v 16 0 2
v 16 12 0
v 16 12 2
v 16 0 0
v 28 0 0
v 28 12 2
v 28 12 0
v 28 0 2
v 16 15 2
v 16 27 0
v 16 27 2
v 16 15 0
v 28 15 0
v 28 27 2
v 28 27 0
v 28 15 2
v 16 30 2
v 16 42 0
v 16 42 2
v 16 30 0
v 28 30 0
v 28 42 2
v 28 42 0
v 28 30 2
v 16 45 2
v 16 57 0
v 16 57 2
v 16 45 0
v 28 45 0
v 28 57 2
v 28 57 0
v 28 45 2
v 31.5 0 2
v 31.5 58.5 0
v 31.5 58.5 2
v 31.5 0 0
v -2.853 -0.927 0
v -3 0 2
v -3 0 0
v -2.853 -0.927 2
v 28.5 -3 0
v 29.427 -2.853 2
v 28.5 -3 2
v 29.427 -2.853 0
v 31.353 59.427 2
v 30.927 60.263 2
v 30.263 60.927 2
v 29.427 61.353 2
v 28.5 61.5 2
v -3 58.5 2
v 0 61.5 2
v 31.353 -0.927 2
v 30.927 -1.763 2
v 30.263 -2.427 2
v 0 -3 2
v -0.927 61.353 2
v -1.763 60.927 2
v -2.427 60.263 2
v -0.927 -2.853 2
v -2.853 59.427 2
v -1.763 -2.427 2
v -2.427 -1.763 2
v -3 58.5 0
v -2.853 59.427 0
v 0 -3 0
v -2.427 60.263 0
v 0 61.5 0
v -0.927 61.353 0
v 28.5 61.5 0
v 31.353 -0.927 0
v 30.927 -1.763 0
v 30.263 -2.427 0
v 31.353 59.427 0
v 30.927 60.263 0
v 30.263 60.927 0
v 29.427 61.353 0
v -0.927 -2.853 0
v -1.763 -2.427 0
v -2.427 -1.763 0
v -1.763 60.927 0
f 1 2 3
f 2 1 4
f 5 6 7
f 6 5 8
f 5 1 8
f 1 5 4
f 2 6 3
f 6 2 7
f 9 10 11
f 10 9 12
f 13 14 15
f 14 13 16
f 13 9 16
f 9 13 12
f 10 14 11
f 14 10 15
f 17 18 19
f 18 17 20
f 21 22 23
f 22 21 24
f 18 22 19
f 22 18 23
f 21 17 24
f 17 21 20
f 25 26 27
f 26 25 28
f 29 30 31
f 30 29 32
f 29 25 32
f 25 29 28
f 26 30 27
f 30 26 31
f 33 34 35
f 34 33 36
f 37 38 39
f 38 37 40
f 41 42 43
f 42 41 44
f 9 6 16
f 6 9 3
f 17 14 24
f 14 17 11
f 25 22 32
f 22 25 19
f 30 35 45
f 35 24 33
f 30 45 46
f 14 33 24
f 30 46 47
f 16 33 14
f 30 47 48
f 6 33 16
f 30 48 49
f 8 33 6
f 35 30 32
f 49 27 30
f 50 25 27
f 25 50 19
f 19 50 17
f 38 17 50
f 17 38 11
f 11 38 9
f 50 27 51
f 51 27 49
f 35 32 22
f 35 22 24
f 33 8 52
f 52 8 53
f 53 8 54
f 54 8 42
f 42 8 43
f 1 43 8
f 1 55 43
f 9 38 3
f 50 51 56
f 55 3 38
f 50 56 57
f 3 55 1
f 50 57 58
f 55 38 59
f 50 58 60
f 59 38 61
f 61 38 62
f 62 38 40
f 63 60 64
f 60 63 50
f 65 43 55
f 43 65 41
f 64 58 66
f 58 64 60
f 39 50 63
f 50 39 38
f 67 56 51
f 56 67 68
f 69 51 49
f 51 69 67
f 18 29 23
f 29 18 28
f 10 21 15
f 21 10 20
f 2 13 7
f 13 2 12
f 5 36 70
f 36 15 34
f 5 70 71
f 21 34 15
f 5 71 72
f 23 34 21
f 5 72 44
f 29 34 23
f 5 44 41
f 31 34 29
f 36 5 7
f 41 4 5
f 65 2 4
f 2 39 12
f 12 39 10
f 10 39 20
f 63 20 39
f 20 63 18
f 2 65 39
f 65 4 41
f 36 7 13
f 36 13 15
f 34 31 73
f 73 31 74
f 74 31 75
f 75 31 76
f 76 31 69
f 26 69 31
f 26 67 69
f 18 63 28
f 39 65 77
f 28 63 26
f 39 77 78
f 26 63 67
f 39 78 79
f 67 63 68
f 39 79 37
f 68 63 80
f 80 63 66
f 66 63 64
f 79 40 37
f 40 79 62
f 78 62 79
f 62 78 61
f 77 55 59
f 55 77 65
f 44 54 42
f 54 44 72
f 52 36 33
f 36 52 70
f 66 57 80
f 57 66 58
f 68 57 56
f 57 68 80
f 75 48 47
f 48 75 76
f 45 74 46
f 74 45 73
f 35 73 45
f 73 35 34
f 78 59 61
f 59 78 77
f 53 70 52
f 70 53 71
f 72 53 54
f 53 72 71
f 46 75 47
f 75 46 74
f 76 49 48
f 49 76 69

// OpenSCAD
// file: ../../../../../basics/rounded-edges/rounded-cube/rounded-cube.scad
/**
 *
 *  some parts of this software were inspired by
 *
 * 	     http://www.thingiverse.com/thing:9347
 *
 */

/**
 * makes a rounded cube
 */
module roundedCube(cornerRadius=4,
				   cubeCentered=false,
				   sides=30,
				   sidesOnly=false,
				   size=[20,20,2])
{
    $fn=sides;

    x = size[0] - cornerRadius/2;
    y = size[1] - cornerRadius/2;
    z = size[2];

    minkowski(size, cornerRadius)
    {
        cube(size=[x,y,z], center=cubeCentered);

        if(sidesOnly)
        {
            cylinder(r=cornerRadius);
        }
        else
        {
            sphere(r=cornerRadius);
        }
    };
}
// file: ../../keyboard-panel.scad
use <../../../basics/rounded-edges/rounded-cube/rounded-cube.scad>

module base(boardLength,
			boardWidth,
			cornerRadius,
			panelHeight)
{
	roundedCube(cornerRadius = cornerRadius,
				sides = 20,
				sidesOnly = true,
				size = [boardLength, boardWidth, panelHeight]);
}

/**
 * buttonSide - the length of the side of the rectangular cutout for the button/key
 */
module holes(buttonCount = 4,
			 buttonSide = 5,
		 	 panelHeight = 1)
{
	x = 16;
	startY = 0;

	ySpacing = 3;
	yIncrement = buttonSide + ySpacing;

echo("buttonCount: ", buttonCount);

	for(i = [0 : buttonCount-1])
	{
		y = startY + (i * yIncrement);

		zLength = 2 * panelHeight + 0.2;

		color("green")
		translate([x, y, -0.1])
		cube([buttonSide, buttonSide, zLength]);
	}
}

module keyboardPanel(boardLength,
					 boardWidth,
					 buttonCount,
 					 buttonSide,
					 cornerRadius,
				 	 panelHeight)
{
	difference()
	{
		base(boardLength,
			 boardWidth,
			 cornerRadius,
		 	 panelHeight);

		holes(buttonCount,
			  buttonSide,
			  panelHeight);
	}
}
// main file
use <../../keyboard-panel.scad>

// adafruit tactile buttons:
//
//	https://www.adafruit.com/product/1009
//	https://www.adafruit.com/product/1010
buttonSide = 12; // 12mm based on the details from the Adafruit site

keyboardPanel(boardLength = 30,
	          boardWidth = 60,
			  buttonCount = 4,
		      buttonSide = buttonSide,
			  cornerRadius = 3,
		      panelHeight = 1);
